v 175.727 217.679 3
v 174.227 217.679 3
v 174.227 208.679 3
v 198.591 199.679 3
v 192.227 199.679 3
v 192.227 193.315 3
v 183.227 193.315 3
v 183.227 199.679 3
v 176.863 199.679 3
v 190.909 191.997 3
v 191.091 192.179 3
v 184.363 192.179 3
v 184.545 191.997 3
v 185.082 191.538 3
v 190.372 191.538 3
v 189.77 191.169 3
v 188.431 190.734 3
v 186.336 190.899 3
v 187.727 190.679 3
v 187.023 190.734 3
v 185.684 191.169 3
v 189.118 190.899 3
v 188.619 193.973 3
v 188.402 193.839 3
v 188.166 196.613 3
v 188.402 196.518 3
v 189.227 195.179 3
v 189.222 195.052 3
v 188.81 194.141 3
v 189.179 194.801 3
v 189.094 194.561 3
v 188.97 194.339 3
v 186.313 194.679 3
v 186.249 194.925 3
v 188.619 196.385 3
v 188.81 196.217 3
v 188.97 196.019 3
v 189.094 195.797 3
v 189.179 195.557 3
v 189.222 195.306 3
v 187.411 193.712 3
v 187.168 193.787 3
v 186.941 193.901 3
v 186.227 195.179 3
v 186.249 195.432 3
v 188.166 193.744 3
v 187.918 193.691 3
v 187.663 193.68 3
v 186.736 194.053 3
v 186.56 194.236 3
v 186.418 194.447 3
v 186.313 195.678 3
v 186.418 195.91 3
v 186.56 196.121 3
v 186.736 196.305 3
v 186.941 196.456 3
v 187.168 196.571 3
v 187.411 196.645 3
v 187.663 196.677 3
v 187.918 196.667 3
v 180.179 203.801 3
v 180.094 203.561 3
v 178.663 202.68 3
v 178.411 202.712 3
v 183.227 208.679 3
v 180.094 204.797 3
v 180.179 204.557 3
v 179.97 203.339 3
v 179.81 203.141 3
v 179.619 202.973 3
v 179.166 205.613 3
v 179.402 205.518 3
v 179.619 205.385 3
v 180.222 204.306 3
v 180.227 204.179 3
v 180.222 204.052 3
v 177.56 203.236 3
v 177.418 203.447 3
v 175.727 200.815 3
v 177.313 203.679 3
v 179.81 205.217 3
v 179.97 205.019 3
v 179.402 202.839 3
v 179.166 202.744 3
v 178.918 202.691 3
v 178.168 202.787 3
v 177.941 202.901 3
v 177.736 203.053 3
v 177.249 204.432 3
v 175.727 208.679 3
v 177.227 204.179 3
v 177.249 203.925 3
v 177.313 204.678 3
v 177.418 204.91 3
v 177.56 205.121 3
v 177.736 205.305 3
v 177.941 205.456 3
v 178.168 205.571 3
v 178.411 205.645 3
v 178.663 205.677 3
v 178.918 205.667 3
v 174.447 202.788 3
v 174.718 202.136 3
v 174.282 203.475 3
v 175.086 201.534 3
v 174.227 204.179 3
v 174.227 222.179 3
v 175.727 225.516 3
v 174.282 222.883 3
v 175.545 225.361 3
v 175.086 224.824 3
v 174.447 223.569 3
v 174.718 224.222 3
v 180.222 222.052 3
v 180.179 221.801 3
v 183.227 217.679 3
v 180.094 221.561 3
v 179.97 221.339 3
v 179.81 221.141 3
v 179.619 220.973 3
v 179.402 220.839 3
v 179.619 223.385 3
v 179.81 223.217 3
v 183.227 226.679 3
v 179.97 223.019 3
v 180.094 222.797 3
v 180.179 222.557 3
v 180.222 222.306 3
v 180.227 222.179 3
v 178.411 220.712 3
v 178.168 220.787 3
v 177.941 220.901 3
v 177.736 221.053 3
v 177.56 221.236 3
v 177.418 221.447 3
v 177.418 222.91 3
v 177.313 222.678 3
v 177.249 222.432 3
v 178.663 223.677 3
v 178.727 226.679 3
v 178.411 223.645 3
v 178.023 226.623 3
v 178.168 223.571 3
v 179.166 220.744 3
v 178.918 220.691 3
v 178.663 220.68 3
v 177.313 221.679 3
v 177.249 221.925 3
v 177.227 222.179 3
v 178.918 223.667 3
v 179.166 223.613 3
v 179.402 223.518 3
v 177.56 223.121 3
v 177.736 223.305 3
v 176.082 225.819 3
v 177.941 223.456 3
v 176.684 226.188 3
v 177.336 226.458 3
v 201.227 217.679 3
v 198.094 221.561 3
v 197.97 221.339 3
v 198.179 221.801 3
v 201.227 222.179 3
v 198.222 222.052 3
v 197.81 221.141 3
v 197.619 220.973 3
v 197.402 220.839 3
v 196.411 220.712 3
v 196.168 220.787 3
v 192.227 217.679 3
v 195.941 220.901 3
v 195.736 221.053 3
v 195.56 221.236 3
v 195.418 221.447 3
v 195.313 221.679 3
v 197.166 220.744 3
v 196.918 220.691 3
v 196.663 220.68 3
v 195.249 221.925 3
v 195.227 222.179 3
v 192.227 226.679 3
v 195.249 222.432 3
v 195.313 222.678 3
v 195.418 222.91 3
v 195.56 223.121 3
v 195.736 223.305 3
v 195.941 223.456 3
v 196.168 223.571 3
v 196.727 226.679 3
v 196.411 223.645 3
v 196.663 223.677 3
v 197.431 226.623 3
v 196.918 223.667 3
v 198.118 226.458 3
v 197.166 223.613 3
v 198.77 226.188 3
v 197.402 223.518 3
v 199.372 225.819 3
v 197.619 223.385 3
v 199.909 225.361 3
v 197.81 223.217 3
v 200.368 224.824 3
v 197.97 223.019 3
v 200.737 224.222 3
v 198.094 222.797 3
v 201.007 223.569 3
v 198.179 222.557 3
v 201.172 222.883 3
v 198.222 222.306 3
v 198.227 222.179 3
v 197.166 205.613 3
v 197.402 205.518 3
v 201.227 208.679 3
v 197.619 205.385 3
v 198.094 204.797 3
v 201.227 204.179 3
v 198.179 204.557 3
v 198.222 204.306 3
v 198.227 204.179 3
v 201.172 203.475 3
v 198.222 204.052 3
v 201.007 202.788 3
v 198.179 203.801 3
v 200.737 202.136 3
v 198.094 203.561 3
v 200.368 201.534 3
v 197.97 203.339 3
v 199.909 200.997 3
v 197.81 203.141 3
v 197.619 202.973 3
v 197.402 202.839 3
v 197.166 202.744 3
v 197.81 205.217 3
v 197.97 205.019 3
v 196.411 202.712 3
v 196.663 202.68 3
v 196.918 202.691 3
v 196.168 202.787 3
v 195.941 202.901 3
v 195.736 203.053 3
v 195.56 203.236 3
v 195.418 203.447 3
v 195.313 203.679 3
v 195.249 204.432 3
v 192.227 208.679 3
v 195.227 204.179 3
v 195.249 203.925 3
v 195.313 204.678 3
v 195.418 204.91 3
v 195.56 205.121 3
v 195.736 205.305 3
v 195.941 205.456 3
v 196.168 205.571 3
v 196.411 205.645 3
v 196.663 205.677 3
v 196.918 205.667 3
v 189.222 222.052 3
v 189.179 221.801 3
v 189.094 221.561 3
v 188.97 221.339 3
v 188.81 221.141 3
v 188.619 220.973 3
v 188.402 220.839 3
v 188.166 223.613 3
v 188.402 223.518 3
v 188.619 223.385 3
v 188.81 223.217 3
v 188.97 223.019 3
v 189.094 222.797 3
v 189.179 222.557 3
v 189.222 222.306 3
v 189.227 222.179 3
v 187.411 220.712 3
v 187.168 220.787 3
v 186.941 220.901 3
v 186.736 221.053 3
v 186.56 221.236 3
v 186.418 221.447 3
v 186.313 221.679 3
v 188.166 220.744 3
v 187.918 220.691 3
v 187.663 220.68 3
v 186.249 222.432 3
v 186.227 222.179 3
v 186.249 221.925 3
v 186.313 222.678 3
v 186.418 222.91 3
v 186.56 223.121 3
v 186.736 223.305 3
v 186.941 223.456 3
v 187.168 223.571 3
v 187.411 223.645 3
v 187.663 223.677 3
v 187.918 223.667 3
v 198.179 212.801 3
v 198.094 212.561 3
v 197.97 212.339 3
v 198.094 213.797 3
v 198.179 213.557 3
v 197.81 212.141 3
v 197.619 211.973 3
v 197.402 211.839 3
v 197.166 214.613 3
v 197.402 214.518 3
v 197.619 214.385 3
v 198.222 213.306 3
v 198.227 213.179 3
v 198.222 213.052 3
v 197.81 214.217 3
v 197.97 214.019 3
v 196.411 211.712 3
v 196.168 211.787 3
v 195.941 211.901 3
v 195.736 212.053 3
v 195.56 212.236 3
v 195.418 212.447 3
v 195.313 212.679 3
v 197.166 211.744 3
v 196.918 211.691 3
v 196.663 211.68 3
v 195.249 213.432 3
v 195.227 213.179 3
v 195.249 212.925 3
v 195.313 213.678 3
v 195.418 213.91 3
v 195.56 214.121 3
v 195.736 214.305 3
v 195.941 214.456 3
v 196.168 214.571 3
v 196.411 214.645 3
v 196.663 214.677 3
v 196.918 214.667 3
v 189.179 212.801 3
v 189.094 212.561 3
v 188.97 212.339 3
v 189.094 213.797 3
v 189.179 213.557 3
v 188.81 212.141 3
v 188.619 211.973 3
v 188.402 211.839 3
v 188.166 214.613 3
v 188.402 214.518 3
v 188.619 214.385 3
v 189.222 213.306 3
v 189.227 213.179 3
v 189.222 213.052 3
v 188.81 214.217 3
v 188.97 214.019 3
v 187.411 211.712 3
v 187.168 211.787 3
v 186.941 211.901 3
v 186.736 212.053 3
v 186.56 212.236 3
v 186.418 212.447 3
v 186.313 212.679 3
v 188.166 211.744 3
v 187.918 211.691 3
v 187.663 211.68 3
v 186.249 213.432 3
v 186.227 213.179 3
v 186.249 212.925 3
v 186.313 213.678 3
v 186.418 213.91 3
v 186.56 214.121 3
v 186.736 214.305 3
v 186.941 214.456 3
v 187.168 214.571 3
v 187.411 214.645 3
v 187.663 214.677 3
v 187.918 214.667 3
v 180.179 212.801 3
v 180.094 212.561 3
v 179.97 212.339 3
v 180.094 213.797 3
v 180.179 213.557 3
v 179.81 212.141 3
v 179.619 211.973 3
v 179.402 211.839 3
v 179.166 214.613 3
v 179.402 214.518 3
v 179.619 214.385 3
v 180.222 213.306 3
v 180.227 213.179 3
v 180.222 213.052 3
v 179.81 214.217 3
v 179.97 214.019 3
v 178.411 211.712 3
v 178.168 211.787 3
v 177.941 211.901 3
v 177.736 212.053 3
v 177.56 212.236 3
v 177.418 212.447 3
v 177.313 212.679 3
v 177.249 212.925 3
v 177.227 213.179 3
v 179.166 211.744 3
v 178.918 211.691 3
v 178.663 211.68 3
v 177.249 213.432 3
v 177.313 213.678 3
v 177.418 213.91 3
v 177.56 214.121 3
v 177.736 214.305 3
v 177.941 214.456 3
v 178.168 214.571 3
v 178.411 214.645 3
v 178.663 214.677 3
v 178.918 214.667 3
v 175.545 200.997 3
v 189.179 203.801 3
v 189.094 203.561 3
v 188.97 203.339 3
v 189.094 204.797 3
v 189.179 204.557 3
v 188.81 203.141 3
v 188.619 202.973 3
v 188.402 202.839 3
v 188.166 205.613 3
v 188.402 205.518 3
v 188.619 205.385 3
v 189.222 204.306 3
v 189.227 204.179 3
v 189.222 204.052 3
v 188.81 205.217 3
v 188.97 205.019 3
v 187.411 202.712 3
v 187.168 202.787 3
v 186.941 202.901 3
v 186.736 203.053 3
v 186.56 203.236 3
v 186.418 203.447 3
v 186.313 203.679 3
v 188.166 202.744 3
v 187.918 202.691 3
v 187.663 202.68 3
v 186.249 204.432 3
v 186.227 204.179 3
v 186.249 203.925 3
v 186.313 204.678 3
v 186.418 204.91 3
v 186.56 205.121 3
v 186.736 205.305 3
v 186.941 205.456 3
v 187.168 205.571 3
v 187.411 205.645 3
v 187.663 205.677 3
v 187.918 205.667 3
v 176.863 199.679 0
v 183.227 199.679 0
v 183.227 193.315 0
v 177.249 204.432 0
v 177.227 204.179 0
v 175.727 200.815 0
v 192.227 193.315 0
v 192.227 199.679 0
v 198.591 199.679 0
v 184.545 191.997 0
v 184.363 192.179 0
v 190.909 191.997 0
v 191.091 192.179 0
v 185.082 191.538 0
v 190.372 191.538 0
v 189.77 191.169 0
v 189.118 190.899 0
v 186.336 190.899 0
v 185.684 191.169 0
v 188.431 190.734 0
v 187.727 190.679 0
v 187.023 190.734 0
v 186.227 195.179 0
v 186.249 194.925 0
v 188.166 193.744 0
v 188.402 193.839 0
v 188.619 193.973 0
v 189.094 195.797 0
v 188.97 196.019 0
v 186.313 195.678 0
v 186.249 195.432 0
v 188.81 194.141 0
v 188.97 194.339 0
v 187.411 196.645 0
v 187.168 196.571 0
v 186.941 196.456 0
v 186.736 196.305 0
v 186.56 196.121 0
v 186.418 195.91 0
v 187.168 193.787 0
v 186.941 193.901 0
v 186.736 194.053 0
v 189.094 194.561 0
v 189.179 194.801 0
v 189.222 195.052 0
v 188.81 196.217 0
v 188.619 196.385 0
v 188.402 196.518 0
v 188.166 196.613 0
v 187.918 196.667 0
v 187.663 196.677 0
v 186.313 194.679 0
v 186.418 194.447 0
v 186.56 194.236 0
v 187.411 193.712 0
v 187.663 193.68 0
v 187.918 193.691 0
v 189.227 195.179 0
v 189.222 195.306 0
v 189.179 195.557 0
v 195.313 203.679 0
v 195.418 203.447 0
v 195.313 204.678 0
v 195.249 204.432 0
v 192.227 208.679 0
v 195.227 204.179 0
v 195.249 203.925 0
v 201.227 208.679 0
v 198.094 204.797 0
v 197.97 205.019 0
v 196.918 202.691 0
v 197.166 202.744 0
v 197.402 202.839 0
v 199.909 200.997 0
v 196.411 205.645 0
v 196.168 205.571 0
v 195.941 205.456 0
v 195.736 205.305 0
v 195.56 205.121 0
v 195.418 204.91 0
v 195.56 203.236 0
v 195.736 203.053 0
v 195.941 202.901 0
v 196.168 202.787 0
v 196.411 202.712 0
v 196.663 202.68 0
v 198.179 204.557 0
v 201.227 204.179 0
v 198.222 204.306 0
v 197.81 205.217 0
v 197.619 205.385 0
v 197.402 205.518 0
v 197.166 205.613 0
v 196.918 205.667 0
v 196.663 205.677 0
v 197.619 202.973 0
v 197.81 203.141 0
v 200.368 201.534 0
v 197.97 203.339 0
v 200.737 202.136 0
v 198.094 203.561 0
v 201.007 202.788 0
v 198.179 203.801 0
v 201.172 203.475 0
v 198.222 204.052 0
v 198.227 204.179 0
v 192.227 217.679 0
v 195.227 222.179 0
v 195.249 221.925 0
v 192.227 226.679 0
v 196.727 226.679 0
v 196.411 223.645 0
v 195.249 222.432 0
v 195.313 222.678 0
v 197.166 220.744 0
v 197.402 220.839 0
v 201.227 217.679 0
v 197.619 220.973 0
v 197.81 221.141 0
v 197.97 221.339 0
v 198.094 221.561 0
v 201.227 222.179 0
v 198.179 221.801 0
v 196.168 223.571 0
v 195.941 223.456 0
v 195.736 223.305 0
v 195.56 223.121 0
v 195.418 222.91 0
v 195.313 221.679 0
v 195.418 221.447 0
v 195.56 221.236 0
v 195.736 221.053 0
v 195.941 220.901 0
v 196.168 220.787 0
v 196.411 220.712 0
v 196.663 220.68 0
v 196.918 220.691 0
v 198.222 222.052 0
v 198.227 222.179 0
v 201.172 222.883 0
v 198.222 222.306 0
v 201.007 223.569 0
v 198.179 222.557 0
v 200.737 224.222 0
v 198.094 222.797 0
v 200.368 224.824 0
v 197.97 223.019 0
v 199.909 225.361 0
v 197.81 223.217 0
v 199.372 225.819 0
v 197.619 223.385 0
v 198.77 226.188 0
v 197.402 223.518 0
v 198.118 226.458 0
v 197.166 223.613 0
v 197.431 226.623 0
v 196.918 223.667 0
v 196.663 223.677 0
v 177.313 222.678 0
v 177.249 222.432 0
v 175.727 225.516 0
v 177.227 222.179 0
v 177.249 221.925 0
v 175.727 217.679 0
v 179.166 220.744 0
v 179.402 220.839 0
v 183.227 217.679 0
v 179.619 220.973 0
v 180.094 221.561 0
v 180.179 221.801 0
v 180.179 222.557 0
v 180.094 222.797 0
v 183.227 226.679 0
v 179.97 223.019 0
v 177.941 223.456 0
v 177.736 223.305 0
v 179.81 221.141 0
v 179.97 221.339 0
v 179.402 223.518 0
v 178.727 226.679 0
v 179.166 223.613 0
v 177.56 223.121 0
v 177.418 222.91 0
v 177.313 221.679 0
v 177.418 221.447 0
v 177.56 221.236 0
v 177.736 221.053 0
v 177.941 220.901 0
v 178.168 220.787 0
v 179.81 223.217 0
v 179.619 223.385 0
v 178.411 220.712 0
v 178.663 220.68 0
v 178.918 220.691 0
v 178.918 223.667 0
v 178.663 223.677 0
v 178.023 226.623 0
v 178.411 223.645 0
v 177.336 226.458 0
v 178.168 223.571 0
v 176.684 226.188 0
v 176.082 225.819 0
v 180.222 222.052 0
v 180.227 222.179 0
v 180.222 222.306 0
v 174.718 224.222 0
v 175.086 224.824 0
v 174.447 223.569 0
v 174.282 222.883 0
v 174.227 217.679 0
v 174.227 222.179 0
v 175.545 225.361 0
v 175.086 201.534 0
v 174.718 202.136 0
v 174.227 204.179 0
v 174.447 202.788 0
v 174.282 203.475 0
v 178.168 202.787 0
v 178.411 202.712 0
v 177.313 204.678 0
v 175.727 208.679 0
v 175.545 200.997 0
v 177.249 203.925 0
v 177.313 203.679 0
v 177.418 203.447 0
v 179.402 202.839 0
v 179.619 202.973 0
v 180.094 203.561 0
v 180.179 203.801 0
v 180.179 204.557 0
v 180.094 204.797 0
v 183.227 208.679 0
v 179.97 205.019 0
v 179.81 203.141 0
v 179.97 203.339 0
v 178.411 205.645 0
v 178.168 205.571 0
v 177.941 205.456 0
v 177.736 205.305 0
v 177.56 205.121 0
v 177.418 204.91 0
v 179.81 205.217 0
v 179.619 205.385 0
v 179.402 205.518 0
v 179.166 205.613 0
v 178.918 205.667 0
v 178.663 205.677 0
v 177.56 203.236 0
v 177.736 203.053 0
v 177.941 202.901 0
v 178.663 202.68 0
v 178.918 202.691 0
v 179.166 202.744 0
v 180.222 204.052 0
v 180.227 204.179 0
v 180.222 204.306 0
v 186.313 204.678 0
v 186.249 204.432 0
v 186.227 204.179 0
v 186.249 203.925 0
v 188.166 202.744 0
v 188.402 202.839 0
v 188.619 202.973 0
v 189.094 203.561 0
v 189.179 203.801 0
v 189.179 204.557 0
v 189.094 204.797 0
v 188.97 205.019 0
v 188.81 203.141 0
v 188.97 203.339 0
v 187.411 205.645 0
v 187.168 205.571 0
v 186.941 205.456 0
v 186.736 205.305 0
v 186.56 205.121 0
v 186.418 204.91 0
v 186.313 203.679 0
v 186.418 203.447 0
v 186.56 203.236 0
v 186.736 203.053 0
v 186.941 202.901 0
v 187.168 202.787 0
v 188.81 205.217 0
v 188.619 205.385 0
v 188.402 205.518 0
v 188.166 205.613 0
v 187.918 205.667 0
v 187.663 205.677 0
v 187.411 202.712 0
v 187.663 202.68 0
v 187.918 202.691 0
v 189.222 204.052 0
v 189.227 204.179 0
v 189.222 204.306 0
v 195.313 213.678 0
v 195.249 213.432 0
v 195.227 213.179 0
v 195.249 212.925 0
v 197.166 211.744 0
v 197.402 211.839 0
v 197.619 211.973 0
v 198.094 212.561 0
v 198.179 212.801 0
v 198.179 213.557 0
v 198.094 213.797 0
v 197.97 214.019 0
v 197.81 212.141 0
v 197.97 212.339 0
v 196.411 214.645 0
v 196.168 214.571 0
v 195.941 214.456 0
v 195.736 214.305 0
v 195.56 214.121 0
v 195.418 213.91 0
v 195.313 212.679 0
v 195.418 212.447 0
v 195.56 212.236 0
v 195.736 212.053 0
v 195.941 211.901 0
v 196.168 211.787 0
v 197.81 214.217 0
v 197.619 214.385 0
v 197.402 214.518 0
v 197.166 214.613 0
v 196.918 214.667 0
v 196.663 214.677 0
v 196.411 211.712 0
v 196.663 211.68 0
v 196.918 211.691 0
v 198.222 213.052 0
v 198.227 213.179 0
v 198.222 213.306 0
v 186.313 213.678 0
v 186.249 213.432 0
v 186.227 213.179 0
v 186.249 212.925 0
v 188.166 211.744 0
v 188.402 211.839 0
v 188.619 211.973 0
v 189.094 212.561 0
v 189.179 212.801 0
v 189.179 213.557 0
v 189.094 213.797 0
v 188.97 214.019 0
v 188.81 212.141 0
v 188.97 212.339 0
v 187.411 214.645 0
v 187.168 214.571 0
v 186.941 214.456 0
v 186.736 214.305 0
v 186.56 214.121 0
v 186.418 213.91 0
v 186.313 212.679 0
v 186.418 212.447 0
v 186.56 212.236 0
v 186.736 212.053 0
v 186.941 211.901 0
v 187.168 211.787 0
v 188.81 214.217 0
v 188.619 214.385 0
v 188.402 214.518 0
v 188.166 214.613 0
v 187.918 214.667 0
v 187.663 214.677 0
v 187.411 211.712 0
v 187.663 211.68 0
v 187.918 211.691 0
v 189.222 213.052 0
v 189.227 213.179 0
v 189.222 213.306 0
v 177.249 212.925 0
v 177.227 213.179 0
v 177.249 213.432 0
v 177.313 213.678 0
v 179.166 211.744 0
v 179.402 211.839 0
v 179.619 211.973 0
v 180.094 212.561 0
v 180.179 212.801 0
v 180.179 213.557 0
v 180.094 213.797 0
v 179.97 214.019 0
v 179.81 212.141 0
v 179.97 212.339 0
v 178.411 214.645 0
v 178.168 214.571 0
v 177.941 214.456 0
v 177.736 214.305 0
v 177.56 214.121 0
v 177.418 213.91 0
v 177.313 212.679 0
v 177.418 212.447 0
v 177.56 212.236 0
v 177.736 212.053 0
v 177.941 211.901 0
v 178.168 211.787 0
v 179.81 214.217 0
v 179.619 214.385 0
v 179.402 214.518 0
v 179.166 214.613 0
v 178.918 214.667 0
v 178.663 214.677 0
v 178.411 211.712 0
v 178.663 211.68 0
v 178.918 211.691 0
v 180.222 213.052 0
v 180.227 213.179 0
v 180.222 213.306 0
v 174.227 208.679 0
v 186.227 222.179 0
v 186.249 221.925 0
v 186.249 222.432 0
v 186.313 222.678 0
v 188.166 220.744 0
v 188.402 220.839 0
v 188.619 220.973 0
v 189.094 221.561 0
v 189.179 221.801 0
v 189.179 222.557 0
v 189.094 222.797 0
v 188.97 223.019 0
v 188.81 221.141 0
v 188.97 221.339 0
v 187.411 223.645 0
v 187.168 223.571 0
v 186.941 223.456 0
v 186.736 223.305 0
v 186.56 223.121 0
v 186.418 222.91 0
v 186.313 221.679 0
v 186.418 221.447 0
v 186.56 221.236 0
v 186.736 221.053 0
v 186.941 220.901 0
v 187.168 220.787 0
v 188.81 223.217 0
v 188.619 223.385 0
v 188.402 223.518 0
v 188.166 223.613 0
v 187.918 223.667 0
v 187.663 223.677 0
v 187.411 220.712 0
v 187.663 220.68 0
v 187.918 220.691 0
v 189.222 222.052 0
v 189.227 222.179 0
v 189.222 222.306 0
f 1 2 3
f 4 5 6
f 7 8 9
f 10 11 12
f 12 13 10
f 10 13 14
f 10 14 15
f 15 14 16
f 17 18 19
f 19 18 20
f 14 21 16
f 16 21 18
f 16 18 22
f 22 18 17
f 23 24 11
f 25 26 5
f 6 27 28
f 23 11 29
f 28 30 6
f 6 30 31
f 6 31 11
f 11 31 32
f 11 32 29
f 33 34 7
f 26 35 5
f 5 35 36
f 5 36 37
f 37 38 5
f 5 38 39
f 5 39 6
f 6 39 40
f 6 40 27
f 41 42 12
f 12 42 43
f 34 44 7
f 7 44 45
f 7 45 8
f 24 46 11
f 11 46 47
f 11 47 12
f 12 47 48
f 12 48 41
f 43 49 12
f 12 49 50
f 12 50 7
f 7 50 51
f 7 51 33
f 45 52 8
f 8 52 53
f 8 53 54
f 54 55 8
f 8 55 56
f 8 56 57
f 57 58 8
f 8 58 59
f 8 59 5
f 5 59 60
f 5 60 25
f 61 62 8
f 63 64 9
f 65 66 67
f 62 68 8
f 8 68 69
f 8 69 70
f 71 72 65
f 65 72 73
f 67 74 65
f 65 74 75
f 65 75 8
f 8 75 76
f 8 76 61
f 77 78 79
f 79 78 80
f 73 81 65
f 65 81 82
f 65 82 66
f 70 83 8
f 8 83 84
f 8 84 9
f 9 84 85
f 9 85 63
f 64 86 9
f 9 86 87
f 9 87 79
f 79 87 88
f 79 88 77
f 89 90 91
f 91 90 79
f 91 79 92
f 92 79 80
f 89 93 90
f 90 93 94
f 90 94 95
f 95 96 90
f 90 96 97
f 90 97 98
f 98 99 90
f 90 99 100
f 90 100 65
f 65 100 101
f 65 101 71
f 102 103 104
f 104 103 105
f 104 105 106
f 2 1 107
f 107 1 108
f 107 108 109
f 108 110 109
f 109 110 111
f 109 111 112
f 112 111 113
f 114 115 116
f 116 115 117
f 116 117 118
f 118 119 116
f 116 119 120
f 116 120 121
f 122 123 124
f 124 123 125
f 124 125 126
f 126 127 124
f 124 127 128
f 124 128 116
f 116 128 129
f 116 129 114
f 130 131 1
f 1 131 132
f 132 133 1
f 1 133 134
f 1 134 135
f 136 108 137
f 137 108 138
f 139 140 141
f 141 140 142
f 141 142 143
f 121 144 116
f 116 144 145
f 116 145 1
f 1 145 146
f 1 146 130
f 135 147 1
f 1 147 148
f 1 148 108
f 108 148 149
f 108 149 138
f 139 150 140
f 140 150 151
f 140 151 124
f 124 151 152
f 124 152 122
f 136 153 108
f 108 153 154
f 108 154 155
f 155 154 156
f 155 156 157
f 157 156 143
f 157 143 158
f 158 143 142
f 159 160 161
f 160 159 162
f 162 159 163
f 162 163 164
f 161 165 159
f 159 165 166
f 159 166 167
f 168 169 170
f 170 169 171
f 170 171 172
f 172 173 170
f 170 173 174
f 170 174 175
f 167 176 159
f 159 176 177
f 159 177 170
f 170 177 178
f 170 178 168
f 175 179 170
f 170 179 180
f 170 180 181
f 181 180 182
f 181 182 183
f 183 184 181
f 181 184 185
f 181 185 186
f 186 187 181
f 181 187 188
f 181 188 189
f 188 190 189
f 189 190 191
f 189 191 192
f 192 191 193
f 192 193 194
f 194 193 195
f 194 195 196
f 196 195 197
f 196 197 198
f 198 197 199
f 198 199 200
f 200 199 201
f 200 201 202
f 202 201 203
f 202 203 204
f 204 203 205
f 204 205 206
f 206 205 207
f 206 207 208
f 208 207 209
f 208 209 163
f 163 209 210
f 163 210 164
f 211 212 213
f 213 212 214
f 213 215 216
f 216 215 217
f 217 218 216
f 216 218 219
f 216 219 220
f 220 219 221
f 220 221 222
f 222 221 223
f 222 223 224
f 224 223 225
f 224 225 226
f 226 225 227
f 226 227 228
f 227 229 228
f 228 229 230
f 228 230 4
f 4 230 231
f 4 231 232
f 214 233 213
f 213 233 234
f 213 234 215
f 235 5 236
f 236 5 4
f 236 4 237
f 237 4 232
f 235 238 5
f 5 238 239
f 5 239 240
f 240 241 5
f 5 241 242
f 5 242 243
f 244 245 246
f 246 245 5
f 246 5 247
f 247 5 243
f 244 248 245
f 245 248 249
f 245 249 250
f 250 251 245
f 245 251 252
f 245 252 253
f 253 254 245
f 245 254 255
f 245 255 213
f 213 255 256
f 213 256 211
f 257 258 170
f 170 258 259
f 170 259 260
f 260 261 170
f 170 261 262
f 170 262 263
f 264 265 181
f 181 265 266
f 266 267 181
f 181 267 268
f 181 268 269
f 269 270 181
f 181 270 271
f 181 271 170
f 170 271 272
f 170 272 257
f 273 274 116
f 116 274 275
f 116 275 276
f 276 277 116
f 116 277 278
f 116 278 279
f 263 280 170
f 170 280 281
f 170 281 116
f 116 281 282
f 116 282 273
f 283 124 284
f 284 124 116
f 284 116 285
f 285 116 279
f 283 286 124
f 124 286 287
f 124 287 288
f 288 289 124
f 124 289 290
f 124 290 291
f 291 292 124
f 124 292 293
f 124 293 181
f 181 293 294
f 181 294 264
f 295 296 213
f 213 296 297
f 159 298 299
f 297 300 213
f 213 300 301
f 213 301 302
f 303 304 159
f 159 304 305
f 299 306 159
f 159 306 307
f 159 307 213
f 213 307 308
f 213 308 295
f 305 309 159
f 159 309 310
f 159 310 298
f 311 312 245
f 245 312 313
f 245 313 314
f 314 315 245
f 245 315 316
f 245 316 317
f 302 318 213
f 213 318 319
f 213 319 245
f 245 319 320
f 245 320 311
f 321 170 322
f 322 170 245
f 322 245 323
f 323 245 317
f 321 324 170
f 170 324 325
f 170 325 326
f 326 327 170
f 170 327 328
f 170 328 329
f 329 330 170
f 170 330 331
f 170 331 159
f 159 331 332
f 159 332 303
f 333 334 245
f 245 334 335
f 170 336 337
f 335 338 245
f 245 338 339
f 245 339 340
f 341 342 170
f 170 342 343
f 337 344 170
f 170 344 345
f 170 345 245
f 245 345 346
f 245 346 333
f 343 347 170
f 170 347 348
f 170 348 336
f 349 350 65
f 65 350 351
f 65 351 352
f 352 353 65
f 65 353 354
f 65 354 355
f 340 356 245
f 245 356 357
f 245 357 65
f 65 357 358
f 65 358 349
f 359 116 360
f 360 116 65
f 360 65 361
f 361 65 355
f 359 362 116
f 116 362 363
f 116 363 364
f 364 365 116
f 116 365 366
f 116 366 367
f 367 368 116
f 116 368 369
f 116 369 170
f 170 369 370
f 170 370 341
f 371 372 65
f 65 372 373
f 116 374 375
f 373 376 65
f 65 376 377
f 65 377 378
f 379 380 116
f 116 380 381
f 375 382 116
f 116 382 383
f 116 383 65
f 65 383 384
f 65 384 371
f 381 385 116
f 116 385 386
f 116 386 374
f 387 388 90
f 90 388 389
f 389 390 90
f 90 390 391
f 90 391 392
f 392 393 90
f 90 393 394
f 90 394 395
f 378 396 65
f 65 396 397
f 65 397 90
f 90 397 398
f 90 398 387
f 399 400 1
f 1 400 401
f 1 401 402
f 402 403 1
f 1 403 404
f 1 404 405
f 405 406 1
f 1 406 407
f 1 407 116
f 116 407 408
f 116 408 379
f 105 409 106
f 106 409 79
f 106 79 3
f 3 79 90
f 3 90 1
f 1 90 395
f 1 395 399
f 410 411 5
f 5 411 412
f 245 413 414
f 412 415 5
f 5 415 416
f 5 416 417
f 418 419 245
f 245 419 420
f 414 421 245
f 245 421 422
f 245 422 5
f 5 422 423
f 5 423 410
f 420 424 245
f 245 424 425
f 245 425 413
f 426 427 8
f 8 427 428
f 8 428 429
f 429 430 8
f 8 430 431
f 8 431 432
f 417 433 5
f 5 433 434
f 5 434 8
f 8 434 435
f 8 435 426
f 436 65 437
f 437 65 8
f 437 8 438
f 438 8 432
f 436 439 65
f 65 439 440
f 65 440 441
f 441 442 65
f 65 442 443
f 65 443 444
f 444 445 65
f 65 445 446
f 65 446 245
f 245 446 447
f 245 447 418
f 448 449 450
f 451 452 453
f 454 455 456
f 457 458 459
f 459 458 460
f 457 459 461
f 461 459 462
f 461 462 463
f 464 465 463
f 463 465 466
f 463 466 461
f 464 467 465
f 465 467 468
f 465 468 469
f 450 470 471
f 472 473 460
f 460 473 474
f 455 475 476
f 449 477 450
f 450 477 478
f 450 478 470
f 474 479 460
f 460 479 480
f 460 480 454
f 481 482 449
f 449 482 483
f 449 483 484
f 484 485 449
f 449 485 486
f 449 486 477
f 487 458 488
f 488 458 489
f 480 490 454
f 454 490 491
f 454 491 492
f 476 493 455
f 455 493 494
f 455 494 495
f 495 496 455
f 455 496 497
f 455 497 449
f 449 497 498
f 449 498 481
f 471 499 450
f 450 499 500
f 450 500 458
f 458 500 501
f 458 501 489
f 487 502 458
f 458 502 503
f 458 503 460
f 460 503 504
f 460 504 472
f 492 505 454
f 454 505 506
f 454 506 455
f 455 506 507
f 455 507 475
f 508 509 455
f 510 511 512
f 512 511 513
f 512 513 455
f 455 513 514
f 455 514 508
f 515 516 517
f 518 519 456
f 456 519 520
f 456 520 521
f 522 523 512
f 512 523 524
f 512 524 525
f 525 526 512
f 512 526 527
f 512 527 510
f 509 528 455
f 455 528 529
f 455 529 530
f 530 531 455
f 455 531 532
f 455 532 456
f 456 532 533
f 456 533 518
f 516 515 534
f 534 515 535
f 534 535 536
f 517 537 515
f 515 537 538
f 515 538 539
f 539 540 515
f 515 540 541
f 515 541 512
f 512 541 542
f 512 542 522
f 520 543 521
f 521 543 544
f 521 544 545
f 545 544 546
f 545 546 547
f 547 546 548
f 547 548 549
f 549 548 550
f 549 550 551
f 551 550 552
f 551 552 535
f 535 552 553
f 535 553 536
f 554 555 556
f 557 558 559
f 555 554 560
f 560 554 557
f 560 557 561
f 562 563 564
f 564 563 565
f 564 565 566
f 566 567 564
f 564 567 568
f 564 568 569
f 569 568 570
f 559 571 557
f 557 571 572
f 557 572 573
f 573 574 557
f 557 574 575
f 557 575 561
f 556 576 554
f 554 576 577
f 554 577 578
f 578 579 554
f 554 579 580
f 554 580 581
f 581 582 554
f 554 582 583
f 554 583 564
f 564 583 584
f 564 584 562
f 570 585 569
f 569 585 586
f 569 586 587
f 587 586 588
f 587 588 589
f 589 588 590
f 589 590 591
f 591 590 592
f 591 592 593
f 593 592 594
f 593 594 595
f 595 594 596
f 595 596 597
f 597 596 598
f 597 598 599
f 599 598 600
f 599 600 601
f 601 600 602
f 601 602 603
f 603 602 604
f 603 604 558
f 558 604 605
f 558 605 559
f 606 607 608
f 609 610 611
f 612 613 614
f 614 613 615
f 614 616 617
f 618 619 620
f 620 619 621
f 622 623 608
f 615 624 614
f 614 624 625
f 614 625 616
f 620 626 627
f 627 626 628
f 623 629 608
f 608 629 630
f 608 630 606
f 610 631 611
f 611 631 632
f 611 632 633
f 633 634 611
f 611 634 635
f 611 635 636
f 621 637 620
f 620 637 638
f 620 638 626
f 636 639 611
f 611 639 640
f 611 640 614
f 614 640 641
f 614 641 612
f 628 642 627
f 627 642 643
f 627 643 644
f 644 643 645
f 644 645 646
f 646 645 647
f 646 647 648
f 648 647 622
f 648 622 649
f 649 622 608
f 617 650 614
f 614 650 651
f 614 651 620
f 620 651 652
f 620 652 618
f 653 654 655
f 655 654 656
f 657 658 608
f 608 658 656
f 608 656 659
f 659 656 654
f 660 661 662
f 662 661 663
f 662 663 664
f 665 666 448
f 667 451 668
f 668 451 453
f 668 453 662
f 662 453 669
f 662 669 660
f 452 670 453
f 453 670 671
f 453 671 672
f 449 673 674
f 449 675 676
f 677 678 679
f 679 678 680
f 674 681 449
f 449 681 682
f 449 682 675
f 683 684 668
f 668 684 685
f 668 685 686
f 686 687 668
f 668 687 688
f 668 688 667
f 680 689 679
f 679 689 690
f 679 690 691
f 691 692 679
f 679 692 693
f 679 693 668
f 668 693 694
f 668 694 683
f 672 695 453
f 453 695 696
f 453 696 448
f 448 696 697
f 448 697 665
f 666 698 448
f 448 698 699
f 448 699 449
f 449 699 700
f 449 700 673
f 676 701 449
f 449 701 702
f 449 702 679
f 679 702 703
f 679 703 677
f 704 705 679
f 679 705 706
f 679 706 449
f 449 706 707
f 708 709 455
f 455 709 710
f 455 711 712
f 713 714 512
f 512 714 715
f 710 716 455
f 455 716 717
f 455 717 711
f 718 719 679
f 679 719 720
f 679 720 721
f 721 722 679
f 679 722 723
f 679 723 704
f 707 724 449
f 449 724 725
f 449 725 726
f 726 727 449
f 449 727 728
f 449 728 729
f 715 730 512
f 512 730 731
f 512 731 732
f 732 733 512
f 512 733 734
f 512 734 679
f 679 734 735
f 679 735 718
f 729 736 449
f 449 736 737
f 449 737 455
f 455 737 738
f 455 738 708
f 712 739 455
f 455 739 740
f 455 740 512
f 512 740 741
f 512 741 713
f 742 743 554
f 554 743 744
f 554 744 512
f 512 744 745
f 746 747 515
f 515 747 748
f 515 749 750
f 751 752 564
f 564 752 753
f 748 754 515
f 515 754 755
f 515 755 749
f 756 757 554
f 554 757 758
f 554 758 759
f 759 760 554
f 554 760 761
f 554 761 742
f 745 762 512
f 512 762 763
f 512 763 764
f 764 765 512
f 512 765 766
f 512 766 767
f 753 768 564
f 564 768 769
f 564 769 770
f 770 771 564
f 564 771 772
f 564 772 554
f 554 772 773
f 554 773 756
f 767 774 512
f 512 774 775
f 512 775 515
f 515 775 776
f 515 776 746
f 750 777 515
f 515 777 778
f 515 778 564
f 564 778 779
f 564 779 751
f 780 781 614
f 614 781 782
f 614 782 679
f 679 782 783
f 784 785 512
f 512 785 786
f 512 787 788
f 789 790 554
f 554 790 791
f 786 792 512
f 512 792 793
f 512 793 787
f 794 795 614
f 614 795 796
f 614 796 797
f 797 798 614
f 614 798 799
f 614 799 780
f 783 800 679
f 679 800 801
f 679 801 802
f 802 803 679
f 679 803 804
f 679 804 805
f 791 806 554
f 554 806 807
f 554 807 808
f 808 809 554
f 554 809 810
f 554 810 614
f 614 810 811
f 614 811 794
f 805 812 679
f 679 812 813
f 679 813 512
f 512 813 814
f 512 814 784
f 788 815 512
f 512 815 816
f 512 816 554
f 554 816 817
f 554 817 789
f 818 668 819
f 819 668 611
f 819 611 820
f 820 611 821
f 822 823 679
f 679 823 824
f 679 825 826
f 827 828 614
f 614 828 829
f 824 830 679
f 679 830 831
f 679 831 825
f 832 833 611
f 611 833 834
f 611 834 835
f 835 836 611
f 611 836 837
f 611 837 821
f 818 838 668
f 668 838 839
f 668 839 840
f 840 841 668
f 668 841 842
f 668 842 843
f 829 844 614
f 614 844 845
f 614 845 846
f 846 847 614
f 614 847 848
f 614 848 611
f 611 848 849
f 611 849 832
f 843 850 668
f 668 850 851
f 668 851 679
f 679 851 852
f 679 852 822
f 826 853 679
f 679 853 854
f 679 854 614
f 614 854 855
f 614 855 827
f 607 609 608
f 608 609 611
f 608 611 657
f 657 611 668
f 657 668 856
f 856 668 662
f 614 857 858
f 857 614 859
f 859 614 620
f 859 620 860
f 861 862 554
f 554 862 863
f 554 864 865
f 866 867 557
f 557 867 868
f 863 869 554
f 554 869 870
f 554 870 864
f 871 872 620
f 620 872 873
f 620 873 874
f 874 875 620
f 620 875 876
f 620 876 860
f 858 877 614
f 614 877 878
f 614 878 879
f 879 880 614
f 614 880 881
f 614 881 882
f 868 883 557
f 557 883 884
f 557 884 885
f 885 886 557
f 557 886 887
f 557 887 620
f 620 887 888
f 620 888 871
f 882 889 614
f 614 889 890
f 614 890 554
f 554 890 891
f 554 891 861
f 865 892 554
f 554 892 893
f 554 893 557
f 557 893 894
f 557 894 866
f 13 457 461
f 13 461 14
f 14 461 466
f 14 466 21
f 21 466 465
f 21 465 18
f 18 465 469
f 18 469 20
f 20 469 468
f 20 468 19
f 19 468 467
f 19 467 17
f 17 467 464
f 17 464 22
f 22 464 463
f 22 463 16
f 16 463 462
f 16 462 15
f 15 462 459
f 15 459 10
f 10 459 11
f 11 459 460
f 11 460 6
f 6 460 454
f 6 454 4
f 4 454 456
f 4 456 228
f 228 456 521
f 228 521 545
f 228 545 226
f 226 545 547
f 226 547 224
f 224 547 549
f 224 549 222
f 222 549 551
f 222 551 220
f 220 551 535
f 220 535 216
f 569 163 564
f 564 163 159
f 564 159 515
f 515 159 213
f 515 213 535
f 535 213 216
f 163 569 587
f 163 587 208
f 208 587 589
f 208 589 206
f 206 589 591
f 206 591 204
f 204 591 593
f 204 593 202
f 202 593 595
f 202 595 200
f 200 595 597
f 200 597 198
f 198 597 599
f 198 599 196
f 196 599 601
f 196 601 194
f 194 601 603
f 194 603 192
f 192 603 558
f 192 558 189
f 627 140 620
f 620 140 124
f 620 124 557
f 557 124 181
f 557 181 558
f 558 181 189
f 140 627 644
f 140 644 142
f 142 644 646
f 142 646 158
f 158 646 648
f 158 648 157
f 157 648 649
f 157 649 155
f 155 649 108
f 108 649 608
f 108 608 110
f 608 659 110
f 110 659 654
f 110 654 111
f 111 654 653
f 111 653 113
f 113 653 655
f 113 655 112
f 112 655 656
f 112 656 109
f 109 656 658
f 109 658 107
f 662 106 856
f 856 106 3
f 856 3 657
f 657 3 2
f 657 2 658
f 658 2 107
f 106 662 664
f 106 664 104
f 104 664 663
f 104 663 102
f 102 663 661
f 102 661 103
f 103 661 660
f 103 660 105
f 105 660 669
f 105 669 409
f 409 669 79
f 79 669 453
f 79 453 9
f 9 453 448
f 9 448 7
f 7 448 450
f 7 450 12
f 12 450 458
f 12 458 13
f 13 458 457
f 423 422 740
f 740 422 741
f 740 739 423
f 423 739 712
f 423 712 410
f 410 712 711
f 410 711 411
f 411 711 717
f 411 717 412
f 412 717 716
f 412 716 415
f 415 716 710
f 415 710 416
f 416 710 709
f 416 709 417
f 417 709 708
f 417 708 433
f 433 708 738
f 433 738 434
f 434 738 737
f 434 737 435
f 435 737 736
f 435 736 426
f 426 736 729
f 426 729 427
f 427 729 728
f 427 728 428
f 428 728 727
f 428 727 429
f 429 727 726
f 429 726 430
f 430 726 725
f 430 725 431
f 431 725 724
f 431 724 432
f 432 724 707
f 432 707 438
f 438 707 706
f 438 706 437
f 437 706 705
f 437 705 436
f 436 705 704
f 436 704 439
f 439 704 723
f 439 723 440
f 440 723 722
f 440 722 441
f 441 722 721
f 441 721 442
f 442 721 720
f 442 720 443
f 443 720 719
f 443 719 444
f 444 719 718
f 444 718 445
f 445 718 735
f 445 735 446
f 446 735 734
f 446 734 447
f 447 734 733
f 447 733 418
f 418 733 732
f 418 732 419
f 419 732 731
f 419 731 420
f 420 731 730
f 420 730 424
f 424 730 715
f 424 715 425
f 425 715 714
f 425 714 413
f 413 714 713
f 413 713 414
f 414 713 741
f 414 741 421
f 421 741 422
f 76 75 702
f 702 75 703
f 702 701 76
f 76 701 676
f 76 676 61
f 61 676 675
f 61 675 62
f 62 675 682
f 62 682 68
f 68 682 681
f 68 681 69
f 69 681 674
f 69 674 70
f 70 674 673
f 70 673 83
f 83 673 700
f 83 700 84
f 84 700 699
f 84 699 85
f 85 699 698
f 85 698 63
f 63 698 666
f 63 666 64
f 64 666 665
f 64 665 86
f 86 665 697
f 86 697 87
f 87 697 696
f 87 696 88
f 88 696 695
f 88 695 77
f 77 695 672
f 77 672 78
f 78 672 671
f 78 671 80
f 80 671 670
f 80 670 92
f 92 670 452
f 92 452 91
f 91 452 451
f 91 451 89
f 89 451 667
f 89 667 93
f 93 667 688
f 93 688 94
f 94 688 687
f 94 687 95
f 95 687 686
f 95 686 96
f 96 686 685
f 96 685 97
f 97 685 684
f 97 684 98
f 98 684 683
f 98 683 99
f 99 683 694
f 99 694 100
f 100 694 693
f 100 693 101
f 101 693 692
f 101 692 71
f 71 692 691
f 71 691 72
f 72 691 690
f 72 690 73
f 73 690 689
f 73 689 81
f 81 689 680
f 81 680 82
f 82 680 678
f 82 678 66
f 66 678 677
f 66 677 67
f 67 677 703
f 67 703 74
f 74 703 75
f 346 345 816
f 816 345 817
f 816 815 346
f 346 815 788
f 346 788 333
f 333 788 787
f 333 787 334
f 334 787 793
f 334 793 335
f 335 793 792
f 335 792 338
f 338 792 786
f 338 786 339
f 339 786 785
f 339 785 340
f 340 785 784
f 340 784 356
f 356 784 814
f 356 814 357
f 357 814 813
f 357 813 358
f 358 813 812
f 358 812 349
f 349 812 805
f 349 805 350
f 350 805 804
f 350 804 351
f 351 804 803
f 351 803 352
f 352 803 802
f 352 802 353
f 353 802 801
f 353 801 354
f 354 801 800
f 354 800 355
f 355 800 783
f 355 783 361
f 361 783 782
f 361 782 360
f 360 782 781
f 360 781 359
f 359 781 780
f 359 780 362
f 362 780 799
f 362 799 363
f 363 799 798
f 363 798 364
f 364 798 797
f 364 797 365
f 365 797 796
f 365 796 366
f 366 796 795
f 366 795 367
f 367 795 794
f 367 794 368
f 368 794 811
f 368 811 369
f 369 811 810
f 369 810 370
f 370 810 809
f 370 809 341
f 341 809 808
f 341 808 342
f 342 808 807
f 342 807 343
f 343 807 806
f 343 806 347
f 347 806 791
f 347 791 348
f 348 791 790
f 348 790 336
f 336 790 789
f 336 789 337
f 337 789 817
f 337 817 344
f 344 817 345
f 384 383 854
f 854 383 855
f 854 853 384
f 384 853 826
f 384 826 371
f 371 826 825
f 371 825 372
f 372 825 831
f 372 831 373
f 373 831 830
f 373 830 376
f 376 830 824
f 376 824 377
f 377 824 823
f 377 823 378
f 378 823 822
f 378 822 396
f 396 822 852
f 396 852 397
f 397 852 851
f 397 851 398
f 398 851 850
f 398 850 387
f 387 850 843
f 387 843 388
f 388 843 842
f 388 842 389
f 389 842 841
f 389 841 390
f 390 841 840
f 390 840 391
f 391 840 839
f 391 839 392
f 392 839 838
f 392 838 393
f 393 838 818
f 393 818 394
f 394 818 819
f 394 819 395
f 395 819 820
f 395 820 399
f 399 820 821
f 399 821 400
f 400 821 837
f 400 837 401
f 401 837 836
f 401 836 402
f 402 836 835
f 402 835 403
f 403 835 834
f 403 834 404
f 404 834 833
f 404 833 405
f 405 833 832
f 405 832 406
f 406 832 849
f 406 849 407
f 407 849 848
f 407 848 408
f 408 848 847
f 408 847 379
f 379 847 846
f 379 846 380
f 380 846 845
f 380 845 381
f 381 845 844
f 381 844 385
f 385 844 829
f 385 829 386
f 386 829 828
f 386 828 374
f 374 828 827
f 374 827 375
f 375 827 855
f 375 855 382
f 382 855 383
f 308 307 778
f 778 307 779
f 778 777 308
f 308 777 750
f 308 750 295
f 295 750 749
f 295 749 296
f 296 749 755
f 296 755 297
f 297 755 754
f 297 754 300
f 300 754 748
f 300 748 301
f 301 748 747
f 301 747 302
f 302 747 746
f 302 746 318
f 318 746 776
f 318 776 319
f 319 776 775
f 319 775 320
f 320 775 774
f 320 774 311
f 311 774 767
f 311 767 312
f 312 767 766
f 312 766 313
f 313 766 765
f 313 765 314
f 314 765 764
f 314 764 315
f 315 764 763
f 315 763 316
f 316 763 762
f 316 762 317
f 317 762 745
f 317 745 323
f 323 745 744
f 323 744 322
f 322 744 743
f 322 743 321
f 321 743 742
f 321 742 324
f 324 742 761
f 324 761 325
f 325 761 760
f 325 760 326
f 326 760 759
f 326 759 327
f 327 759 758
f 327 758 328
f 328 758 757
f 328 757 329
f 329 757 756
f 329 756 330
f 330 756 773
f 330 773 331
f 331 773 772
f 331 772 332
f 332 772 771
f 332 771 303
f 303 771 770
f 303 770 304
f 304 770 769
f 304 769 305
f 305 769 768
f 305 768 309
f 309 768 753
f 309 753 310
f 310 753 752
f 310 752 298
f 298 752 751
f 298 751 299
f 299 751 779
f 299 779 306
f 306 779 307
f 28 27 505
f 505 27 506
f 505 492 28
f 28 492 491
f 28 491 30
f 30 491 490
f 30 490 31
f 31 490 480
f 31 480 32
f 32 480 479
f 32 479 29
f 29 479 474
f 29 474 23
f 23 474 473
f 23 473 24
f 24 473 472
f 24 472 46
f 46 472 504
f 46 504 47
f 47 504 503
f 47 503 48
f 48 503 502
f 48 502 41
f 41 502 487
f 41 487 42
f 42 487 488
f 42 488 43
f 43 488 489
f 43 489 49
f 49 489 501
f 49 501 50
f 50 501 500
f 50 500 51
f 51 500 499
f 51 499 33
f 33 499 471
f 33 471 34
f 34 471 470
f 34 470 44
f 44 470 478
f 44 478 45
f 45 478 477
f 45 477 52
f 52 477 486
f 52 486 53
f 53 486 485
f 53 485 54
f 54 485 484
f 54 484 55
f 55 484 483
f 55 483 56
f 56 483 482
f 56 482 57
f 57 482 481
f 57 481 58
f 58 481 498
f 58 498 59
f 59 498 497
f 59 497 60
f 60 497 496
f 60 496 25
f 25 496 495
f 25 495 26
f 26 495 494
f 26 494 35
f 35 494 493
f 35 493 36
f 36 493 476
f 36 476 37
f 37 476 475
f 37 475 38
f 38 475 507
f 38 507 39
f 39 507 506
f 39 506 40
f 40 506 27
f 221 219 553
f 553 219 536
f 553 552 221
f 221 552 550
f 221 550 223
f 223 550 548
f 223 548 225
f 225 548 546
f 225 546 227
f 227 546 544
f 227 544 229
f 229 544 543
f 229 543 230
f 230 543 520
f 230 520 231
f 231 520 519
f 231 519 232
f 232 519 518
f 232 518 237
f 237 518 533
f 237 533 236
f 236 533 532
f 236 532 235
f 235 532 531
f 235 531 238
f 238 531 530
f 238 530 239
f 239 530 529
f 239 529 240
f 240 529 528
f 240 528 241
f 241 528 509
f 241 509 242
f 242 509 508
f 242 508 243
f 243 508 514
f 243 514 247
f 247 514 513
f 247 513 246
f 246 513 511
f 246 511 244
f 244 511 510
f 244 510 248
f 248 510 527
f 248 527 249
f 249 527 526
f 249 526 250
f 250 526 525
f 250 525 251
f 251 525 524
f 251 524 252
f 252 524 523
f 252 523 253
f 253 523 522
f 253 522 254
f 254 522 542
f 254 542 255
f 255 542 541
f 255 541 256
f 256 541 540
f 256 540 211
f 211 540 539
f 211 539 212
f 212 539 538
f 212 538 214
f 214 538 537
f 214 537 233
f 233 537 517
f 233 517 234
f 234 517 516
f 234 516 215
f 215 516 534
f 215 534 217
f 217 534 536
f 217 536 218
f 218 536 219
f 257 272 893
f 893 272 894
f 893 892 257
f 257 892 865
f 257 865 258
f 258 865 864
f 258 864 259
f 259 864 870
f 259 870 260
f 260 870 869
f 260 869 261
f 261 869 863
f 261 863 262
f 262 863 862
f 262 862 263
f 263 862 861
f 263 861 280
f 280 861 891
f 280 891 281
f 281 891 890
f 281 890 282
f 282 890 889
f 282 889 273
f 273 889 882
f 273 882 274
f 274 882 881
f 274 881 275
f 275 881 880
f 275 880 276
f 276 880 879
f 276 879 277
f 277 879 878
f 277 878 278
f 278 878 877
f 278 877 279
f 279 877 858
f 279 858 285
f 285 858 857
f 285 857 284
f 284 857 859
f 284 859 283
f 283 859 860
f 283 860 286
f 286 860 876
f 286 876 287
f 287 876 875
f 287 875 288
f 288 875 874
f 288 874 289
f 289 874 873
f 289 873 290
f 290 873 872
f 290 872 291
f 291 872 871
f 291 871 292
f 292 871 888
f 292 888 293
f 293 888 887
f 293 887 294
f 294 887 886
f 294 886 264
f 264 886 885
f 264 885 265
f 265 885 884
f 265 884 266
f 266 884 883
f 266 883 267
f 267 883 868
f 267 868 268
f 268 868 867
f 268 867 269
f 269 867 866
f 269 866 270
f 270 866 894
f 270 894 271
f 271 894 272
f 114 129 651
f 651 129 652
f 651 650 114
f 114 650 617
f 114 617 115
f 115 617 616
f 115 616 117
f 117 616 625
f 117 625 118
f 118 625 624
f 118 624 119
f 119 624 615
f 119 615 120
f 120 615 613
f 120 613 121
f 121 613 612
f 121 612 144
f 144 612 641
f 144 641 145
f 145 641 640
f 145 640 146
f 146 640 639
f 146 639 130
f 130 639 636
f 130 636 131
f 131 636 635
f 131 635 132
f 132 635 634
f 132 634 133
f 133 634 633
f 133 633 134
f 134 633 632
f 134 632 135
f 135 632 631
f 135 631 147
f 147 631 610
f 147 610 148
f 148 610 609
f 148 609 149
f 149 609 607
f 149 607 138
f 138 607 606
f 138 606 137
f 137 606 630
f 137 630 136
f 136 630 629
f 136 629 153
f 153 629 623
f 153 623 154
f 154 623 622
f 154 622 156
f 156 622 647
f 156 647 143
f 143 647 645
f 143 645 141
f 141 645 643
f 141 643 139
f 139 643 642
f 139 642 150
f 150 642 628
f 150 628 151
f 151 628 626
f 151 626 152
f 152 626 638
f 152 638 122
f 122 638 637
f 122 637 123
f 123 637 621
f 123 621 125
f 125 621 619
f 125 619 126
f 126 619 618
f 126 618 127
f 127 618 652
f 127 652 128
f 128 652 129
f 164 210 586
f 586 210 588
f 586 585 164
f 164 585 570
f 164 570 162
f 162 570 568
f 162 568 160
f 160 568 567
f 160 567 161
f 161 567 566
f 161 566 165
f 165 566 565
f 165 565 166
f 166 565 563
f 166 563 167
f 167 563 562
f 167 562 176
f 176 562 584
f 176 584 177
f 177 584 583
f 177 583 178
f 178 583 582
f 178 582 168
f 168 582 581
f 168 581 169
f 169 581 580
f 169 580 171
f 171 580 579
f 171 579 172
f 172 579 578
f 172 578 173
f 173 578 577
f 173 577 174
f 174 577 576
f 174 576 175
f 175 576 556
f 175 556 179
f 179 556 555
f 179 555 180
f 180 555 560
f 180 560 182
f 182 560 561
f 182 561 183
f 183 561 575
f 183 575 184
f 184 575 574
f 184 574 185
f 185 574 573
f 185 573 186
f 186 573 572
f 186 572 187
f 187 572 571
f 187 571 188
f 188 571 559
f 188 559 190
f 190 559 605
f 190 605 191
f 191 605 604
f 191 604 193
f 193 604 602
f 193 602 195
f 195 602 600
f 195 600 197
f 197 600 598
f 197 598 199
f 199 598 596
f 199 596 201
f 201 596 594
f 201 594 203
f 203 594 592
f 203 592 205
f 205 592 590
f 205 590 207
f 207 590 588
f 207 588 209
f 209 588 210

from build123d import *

# Parameters (mm, degrees)
MODEL_R                 = 1.5
SALIENTE_EXTRUIR1_DEPTH = 3


with BuildPart() as part:
    # Model → Saliente-Extruir1 (new body)
    with BuildSketch(Plane.XY):
        with BuildLine():
            Line((174.227054575, 213.178720063), (174.227054575, 204.178720063))
            ThreePointArc((174.227054575, 204.178720063), (174.569596678, 202.456644617), (175.545074059, 200.996739548))
            Line((175.545074059, 200.996739548), (184.545074059, 191.996739548))
            ThreePointArc((184.545074059, 191.996739548), (187.727054575, 190.678720063), (190.90903509, 191.996739548))
            Line((190.90903509, 191.996739548), (199.90903509, 200.996739548))
            ThreePointArc((199.90903509, 200.996739548), (200.884512471, 202.456644617), (201.227054575, 204.178720063))
            Line((201.227054575, 204.178720063), (201.227054575, 222.178720063))
            ThreePointArc((201.227054575, 222.178720063), (199.90903509, 225.360700578), (196.727054575, 226.678720063))
            Line((196.727054575, 226.678720063), (178.727054575, 226.678720063))
            ThreePointArc((178.727054575, 226.678720063), (175.545074059, 225.360700578), (174.227054575, 222.178720063))
            Line((174.227054575, 222.178720063), (174.227054575, 213.178720063))
        make_face()
        with Locations((187.727054575, 204.178720063)):
            Circle(MODEL_R, mode=Mode.SUBTRACT)
        with Locations((178.727054575, 204.178720063)):
            Circle(MODEL_R, mode=Mode.SUBTRACT)
        with Locations((187.727054575, 213.178720063)):
            Circle(MODEL_R, mode=Mode.SUBTRACT)
        with Locations((178.727054575, 213.178720063)):
            Circle(MODEL_R, mode=Mode.SUBTRACT)
        with Locations((196.727054575, 213.178720063)):
            Circle(MODEL_R, mode=Mode.SUBTRACT)
        with Locations((187.727054575, 195.178720063)):
            Circle(MODEL_R, mode=Mode.SUBTRACT)
        with Locations((196.727054575, 204.178720063)):
            Circle(MODEL_R, mode=Mode.SUBTRACT)
        with Locations((187.727054575, 222.178720063)):
            Circle(MODEL_R, mode=Mode.SUBTRACT)
        with Locations((178.727054575, 222.178720063)):
            Circle(MODEL_R, mode=Mode.SUBTRACT)
        with Locations((196.727054575, 222.178720063)):
            Circle(MODEL_R, mode=Mode.SUBTRACT)
    extrude(amount=SALIENTE_EXTRUIR1_DEPTH)


solid = part.part
